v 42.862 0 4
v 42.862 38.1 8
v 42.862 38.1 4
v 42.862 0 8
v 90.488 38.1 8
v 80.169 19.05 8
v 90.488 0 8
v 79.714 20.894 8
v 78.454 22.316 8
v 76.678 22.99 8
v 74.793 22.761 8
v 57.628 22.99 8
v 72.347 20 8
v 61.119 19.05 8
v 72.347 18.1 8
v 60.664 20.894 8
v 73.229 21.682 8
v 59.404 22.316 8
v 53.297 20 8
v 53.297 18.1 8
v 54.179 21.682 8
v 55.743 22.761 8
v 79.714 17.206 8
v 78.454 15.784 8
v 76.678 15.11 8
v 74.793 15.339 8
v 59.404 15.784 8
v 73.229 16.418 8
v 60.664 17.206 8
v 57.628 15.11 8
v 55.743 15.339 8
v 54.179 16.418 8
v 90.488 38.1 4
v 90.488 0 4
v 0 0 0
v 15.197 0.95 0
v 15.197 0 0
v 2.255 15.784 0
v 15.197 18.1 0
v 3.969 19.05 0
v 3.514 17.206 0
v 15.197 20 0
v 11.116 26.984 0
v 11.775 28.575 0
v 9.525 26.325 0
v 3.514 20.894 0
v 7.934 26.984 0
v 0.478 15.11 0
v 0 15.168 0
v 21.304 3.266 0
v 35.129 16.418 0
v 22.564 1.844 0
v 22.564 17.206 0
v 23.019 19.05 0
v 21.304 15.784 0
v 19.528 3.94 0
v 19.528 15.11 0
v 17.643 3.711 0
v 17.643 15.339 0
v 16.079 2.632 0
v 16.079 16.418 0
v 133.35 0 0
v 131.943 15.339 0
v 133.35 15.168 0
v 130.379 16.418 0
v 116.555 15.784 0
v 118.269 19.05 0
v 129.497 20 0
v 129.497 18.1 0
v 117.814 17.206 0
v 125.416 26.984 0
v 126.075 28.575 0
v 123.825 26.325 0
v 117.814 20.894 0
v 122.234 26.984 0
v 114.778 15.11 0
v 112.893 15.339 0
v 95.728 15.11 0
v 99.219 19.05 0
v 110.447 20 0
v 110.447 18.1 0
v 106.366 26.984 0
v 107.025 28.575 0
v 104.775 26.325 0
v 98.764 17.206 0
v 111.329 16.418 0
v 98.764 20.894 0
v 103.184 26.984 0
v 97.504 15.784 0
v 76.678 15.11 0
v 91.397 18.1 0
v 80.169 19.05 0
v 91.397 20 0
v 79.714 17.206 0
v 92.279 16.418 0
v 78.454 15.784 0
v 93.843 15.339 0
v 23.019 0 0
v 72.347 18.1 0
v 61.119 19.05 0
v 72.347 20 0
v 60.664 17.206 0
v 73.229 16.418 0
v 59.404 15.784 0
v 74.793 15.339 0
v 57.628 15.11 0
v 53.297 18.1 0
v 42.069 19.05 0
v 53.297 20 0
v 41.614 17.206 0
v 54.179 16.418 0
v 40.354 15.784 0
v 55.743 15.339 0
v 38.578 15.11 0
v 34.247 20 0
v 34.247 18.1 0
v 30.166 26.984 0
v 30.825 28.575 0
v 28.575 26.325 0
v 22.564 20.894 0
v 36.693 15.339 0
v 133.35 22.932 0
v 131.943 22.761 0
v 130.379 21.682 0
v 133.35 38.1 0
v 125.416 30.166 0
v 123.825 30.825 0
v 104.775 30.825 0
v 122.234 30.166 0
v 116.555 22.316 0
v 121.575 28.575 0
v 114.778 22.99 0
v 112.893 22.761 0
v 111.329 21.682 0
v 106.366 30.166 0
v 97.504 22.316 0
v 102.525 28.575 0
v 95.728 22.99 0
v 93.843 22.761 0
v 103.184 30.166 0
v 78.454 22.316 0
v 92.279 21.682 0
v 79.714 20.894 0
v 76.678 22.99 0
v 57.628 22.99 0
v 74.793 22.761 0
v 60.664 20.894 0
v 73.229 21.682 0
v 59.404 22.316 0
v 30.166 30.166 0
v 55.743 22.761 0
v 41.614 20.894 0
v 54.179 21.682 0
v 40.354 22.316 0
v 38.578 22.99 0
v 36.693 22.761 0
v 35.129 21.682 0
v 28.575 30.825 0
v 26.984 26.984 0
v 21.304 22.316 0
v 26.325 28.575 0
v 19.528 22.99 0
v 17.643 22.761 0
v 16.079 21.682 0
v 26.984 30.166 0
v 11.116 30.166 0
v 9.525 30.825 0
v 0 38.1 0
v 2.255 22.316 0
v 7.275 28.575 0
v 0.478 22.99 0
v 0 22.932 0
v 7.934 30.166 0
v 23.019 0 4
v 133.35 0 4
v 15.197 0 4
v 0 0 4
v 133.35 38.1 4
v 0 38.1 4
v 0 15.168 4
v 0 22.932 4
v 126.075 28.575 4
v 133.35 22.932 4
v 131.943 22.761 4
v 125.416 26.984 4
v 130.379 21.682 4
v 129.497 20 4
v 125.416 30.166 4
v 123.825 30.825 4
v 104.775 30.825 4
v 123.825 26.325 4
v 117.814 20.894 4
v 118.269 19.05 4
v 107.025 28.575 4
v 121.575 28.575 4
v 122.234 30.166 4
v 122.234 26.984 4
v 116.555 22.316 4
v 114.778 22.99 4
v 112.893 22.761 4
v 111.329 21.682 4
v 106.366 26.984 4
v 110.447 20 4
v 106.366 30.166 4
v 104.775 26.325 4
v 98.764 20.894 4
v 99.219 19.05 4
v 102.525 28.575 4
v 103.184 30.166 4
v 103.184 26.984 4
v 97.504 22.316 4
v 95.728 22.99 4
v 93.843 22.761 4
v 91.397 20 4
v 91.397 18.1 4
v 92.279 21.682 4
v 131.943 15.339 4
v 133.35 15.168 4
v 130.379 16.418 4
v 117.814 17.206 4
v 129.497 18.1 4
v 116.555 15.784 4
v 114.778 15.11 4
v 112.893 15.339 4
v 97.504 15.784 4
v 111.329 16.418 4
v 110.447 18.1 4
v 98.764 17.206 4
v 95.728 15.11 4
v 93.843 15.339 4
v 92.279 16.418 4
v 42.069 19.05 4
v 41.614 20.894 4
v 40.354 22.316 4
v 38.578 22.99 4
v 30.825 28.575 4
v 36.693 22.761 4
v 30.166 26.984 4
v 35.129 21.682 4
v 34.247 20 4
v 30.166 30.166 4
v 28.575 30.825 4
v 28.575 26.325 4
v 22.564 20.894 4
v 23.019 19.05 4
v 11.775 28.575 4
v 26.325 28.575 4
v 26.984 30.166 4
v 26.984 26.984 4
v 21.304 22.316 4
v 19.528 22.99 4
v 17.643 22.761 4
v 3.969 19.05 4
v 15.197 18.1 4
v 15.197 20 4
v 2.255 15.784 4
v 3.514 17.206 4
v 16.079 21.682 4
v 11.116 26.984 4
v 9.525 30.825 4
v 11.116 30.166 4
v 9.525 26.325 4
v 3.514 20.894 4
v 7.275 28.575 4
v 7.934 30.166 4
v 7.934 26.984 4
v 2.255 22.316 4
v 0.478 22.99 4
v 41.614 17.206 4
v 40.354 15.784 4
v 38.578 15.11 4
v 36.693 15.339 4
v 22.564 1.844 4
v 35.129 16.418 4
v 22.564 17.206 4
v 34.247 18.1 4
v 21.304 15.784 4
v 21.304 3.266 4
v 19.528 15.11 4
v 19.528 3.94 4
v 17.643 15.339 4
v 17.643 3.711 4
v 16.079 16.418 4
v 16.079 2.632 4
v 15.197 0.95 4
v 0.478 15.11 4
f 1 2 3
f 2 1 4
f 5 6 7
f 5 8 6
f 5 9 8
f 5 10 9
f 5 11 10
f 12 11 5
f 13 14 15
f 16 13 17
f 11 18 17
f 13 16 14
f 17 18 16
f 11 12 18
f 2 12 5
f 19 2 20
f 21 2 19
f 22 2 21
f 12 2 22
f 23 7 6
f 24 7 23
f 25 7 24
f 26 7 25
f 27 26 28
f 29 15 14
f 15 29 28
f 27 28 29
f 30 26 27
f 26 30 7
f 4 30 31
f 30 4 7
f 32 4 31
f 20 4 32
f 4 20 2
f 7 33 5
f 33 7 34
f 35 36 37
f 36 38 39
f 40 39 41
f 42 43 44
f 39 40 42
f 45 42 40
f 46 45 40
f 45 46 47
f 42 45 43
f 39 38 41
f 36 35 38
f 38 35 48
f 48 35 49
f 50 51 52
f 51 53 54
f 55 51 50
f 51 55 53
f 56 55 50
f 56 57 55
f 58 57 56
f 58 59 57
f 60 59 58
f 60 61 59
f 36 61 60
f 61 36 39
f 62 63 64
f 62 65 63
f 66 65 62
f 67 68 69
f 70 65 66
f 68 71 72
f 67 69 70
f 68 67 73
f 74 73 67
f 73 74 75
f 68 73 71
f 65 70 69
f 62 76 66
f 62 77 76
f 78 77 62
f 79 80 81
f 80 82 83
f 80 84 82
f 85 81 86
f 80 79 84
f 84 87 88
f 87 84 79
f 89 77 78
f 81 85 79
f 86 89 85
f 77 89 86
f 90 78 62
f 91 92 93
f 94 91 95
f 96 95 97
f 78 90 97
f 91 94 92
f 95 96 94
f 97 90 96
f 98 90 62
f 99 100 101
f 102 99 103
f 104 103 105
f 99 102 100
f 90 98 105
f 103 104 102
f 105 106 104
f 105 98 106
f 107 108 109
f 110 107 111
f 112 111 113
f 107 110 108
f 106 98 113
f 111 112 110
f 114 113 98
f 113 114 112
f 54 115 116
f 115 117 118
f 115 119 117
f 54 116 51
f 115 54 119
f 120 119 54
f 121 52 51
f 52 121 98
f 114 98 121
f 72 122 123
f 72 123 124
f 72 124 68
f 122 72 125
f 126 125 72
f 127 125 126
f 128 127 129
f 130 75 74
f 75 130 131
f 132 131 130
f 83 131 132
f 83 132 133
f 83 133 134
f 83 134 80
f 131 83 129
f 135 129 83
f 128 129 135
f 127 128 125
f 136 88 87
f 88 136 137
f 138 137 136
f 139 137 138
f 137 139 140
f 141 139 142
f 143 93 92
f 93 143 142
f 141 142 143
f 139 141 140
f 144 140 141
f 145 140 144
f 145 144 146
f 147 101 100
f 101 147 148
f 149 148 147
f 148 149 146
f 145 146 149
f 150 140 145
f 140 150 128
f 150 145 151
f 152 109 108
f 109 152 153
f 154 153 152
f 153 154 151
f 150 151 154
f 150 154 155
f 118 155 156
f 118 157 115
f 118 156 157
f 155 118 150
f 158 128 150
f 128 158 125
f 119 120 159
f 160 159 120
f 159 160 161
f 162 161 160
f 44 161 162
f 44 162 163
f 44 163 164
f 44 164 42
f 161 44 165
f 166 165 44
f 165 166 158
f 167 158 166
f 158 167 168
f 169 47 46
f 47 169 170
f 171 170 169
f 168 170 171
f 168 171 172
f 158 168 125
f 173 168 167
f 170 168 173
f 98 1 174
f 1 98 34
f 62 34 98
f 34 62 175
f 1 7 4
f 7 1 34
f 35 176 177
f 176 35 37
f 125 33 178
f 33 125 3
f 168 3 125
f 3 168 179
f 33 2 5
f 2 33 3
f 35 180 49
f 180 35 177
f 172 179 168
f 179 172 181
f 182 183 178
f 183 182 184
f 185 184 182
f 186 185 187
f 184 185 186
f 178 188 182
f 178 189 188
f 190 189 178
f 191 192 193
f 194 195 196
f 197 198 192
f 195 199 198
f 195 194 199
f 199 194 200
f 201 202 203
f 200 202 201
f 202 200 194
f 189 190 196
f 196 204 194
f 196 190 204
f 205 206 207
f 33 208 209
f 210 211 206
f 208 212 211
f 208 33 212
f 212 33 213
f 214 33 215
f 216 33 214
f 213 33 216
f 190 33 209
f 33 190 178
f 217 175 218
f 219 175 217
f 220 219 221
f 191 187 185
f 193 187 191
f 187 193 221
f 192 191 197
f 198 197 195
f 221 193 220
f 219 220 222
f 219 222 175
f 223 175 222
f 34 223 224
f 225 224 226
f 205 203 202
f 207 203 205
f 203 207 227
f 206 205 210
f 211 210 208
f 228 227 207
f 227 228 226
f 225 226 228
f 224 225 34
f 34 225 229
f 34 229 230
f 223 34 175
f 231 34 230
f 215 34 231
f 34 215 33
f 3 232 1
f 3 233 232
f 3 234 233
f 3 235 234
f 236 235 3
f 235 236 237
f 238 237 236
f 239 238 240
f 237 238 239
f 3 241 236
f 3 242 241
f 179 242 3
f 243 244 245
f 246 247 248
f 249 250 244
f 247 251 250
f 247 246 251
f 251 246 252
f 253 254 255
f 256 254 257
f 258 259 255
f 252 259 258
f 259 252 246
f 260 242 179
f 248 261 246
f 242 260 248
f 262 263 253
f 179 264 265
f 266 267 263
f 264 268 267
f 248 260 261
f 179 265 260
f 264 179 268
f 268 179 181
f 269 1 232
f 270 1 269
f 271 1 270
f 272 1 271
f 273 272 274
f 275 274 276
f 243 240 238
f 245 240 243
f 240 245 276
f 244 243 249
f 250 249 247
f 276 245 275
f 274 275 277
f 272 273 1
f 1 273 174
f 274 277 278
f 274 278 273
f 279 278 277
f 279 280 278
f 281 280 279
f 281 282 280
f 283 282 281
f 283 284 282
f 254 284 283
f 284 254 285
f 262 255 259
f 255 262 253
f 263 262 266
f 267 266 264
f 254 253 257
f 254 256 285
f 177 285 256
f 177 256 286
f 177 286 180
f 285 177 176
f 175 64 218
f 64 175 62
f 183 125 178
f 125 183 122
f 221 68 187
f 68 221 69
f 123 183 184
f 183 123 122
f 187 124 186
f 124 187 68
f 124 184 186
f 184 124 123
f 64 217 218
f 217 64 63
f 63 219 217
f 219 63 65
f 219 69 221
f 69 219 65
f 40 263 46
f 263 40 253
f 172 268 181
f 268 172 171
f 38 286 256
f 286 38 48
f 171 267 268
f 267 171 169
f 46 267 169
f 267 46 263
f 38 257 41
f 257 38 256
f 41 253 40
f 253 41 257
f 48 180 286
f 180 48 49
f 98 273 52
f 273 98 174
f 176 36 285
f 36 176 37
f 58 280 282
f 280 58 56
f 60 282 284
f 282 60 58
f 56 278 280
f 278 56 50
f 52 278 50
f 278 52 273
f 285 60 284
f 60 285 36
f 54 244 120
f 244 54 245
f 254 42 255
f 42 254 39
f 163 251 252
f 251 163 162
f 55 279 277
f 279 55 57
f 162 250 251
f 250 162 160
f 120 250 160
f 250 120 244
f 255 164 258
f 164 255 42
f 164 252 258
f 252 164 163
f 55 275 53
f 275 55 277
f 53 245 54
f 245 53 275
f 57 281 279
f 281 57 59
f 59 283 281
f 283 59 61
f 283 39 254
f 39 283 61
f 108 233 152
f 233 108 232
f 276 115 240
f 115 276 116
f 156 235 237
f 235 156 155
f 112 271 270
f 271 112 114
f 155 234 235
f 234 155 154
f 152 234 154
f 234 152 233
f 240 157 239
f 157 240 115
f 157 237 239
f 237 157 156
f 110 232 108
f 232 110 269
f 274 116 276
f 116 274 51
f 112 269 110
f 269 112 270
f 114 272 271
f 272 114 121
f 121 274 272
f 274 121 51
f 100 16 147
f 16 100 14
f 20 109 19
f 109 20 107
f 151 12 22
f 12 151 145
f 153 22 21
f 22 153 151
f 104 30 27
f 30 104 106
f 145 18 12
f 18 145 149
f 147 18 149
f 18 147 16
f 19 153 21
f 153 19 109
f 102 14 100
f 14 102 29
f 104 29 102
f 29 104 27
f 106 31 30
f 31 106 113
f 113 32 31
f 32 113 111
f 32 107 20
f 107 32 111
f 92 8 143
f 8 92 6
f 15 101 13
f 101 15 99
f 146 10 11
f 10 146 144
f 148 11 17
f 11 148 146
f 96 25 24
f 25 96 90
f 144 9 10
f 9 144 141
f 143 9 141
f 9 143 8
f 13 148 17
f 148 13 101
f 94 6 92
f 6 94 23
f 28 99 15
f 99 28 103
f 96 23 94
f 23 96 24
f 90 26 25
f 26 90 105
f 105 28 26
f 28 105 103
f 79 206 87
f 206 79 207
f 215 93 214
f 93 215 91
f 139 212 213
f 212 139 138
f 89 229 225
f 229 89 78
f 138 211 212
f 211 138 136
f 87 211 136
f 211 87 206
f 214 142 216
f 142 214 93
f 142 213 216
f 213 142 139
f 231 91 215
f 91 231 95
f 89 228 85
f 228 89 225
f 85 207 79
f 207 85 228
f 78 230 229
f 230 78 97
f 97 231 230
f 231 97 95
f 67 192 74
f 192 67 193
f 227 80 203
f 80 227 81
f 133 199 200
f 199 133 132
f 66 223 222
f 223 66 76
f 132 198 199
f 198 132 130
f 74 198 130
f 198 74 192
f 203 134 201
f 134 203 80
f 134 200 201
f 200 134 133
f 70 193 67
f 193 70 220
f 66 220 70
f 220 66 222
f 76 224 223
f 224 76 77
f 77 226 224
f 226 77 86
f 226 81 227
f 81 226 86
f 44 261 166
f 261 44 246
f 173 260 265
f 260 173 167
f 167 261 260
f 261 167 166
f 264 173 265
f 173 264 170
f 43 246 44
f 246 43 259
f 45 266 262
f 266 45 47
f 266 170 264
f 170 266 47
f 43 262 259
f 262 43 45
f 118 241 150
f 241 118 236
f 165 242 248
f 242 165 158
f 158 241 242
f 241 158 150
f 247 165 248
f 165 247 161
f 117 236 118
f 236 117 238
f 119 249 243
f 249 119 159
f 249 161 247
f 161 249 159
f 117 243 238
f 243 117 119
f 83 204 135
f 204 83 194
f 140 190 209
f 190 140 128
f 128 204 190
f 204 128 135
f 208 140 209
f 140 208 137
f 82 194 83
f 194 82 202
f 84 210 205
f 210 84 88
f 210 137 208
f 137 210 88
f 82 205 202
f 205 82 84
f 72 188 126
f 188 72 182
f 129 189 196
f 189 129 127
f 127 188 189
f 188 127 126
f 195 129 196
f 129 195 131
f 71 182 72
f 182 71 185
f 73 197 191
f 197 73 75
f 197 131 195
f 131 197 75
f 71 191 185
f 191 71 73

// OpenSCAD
// file: constants.scad
thickness = 8;
holeDiameter = 7.9375;
holeDistance = 19.05;
length = 152.4 - holeDistance;
width = holeDistance * 2;
straightPlankLength = 4.5 * holeDistance;
screwHoleDiameter = 4.5;
// main file
include <constants.scad>;

makeMainPlank();

module makeMainPlank() {
    difference() {
        union() {
            translate([length / 4 + holeDistance / 2, 0, 0])
                cube([length / 2 - holeDistance, width, thickness]);
            cube([length, width, thickness / 2]);
        }
        
        union() {
            color("blue")
            translate([length, width / 2, -thickness / 2])
            cylinder(d=holeDiameter, h=thickness * 2);
            
            color("blue")
            translate([0, width / 2, -thickness / 2])
            cylinder(d=holeDiameter, h=thickness * 2);
            
            color("blue")
            translate([holeDistance, width / 2 - holeDistance, -thickness / 2])
            cylinder(d=holeDiameter, h=thickness * 2);

            color("green")
            translate([holeDistance, width / 2, -thickness / 2])
            cylinder(d=holeDiameter, h=thickness * 2);

            color("green")
            translate([holeDistance * 2, width / 2, -thickness / 2])
            cylinder(d=holeDiameter, h=thickness * 2);

            color("green")
            translate([holeDistance * 3, width / 2, -thickness / 2])
            cylinder(d=holeDiameter, h=thickness * 2);

            color("green")
            translate([holeDistance * 4, width / 2, -thickness / 2])
            cylinder(d=holeDiameter, h=thickness * 2);

            color("green")
            translate([holeDistance * 5, width / 2, -thickness / 2])
            cylinder(d=holeDiameter, h=thickness * 2);

            color("green")
            translate([holeDistance * 6, width / 2, -thickness / 2])
            cylinder(d=holeDiameter, h=thickness * 2);

            color("green")
            translate([holeDistance * 7, width / 2, -thickness / 2])
            cylinder(d=holeDiameter, h=thickness * 2);
        }
        color("black")
        translate([holeDistance * 0.5, width * 0.75, -thickness])
        cylinder(d=screwHoleDiameter, h=thickness * 3);
        color("black")
        translate([holeDistance * 1.5, width * 0.75, -thickness])
        cylinder(d=screwHoleDiameter, h=thickness * 3);
        
        color("black")
        translate([holeDistance * 5.5, width * 0.75, -thickness])
        cylinder(d=screwHoleDiameter, h=thickness * 3);
        color("black")
        translate([holeDistance * 6.5, width * 0.75, -thickness])
        cylinder(d=screwHoleDiameter, h=thickness * 3);
    }
}
